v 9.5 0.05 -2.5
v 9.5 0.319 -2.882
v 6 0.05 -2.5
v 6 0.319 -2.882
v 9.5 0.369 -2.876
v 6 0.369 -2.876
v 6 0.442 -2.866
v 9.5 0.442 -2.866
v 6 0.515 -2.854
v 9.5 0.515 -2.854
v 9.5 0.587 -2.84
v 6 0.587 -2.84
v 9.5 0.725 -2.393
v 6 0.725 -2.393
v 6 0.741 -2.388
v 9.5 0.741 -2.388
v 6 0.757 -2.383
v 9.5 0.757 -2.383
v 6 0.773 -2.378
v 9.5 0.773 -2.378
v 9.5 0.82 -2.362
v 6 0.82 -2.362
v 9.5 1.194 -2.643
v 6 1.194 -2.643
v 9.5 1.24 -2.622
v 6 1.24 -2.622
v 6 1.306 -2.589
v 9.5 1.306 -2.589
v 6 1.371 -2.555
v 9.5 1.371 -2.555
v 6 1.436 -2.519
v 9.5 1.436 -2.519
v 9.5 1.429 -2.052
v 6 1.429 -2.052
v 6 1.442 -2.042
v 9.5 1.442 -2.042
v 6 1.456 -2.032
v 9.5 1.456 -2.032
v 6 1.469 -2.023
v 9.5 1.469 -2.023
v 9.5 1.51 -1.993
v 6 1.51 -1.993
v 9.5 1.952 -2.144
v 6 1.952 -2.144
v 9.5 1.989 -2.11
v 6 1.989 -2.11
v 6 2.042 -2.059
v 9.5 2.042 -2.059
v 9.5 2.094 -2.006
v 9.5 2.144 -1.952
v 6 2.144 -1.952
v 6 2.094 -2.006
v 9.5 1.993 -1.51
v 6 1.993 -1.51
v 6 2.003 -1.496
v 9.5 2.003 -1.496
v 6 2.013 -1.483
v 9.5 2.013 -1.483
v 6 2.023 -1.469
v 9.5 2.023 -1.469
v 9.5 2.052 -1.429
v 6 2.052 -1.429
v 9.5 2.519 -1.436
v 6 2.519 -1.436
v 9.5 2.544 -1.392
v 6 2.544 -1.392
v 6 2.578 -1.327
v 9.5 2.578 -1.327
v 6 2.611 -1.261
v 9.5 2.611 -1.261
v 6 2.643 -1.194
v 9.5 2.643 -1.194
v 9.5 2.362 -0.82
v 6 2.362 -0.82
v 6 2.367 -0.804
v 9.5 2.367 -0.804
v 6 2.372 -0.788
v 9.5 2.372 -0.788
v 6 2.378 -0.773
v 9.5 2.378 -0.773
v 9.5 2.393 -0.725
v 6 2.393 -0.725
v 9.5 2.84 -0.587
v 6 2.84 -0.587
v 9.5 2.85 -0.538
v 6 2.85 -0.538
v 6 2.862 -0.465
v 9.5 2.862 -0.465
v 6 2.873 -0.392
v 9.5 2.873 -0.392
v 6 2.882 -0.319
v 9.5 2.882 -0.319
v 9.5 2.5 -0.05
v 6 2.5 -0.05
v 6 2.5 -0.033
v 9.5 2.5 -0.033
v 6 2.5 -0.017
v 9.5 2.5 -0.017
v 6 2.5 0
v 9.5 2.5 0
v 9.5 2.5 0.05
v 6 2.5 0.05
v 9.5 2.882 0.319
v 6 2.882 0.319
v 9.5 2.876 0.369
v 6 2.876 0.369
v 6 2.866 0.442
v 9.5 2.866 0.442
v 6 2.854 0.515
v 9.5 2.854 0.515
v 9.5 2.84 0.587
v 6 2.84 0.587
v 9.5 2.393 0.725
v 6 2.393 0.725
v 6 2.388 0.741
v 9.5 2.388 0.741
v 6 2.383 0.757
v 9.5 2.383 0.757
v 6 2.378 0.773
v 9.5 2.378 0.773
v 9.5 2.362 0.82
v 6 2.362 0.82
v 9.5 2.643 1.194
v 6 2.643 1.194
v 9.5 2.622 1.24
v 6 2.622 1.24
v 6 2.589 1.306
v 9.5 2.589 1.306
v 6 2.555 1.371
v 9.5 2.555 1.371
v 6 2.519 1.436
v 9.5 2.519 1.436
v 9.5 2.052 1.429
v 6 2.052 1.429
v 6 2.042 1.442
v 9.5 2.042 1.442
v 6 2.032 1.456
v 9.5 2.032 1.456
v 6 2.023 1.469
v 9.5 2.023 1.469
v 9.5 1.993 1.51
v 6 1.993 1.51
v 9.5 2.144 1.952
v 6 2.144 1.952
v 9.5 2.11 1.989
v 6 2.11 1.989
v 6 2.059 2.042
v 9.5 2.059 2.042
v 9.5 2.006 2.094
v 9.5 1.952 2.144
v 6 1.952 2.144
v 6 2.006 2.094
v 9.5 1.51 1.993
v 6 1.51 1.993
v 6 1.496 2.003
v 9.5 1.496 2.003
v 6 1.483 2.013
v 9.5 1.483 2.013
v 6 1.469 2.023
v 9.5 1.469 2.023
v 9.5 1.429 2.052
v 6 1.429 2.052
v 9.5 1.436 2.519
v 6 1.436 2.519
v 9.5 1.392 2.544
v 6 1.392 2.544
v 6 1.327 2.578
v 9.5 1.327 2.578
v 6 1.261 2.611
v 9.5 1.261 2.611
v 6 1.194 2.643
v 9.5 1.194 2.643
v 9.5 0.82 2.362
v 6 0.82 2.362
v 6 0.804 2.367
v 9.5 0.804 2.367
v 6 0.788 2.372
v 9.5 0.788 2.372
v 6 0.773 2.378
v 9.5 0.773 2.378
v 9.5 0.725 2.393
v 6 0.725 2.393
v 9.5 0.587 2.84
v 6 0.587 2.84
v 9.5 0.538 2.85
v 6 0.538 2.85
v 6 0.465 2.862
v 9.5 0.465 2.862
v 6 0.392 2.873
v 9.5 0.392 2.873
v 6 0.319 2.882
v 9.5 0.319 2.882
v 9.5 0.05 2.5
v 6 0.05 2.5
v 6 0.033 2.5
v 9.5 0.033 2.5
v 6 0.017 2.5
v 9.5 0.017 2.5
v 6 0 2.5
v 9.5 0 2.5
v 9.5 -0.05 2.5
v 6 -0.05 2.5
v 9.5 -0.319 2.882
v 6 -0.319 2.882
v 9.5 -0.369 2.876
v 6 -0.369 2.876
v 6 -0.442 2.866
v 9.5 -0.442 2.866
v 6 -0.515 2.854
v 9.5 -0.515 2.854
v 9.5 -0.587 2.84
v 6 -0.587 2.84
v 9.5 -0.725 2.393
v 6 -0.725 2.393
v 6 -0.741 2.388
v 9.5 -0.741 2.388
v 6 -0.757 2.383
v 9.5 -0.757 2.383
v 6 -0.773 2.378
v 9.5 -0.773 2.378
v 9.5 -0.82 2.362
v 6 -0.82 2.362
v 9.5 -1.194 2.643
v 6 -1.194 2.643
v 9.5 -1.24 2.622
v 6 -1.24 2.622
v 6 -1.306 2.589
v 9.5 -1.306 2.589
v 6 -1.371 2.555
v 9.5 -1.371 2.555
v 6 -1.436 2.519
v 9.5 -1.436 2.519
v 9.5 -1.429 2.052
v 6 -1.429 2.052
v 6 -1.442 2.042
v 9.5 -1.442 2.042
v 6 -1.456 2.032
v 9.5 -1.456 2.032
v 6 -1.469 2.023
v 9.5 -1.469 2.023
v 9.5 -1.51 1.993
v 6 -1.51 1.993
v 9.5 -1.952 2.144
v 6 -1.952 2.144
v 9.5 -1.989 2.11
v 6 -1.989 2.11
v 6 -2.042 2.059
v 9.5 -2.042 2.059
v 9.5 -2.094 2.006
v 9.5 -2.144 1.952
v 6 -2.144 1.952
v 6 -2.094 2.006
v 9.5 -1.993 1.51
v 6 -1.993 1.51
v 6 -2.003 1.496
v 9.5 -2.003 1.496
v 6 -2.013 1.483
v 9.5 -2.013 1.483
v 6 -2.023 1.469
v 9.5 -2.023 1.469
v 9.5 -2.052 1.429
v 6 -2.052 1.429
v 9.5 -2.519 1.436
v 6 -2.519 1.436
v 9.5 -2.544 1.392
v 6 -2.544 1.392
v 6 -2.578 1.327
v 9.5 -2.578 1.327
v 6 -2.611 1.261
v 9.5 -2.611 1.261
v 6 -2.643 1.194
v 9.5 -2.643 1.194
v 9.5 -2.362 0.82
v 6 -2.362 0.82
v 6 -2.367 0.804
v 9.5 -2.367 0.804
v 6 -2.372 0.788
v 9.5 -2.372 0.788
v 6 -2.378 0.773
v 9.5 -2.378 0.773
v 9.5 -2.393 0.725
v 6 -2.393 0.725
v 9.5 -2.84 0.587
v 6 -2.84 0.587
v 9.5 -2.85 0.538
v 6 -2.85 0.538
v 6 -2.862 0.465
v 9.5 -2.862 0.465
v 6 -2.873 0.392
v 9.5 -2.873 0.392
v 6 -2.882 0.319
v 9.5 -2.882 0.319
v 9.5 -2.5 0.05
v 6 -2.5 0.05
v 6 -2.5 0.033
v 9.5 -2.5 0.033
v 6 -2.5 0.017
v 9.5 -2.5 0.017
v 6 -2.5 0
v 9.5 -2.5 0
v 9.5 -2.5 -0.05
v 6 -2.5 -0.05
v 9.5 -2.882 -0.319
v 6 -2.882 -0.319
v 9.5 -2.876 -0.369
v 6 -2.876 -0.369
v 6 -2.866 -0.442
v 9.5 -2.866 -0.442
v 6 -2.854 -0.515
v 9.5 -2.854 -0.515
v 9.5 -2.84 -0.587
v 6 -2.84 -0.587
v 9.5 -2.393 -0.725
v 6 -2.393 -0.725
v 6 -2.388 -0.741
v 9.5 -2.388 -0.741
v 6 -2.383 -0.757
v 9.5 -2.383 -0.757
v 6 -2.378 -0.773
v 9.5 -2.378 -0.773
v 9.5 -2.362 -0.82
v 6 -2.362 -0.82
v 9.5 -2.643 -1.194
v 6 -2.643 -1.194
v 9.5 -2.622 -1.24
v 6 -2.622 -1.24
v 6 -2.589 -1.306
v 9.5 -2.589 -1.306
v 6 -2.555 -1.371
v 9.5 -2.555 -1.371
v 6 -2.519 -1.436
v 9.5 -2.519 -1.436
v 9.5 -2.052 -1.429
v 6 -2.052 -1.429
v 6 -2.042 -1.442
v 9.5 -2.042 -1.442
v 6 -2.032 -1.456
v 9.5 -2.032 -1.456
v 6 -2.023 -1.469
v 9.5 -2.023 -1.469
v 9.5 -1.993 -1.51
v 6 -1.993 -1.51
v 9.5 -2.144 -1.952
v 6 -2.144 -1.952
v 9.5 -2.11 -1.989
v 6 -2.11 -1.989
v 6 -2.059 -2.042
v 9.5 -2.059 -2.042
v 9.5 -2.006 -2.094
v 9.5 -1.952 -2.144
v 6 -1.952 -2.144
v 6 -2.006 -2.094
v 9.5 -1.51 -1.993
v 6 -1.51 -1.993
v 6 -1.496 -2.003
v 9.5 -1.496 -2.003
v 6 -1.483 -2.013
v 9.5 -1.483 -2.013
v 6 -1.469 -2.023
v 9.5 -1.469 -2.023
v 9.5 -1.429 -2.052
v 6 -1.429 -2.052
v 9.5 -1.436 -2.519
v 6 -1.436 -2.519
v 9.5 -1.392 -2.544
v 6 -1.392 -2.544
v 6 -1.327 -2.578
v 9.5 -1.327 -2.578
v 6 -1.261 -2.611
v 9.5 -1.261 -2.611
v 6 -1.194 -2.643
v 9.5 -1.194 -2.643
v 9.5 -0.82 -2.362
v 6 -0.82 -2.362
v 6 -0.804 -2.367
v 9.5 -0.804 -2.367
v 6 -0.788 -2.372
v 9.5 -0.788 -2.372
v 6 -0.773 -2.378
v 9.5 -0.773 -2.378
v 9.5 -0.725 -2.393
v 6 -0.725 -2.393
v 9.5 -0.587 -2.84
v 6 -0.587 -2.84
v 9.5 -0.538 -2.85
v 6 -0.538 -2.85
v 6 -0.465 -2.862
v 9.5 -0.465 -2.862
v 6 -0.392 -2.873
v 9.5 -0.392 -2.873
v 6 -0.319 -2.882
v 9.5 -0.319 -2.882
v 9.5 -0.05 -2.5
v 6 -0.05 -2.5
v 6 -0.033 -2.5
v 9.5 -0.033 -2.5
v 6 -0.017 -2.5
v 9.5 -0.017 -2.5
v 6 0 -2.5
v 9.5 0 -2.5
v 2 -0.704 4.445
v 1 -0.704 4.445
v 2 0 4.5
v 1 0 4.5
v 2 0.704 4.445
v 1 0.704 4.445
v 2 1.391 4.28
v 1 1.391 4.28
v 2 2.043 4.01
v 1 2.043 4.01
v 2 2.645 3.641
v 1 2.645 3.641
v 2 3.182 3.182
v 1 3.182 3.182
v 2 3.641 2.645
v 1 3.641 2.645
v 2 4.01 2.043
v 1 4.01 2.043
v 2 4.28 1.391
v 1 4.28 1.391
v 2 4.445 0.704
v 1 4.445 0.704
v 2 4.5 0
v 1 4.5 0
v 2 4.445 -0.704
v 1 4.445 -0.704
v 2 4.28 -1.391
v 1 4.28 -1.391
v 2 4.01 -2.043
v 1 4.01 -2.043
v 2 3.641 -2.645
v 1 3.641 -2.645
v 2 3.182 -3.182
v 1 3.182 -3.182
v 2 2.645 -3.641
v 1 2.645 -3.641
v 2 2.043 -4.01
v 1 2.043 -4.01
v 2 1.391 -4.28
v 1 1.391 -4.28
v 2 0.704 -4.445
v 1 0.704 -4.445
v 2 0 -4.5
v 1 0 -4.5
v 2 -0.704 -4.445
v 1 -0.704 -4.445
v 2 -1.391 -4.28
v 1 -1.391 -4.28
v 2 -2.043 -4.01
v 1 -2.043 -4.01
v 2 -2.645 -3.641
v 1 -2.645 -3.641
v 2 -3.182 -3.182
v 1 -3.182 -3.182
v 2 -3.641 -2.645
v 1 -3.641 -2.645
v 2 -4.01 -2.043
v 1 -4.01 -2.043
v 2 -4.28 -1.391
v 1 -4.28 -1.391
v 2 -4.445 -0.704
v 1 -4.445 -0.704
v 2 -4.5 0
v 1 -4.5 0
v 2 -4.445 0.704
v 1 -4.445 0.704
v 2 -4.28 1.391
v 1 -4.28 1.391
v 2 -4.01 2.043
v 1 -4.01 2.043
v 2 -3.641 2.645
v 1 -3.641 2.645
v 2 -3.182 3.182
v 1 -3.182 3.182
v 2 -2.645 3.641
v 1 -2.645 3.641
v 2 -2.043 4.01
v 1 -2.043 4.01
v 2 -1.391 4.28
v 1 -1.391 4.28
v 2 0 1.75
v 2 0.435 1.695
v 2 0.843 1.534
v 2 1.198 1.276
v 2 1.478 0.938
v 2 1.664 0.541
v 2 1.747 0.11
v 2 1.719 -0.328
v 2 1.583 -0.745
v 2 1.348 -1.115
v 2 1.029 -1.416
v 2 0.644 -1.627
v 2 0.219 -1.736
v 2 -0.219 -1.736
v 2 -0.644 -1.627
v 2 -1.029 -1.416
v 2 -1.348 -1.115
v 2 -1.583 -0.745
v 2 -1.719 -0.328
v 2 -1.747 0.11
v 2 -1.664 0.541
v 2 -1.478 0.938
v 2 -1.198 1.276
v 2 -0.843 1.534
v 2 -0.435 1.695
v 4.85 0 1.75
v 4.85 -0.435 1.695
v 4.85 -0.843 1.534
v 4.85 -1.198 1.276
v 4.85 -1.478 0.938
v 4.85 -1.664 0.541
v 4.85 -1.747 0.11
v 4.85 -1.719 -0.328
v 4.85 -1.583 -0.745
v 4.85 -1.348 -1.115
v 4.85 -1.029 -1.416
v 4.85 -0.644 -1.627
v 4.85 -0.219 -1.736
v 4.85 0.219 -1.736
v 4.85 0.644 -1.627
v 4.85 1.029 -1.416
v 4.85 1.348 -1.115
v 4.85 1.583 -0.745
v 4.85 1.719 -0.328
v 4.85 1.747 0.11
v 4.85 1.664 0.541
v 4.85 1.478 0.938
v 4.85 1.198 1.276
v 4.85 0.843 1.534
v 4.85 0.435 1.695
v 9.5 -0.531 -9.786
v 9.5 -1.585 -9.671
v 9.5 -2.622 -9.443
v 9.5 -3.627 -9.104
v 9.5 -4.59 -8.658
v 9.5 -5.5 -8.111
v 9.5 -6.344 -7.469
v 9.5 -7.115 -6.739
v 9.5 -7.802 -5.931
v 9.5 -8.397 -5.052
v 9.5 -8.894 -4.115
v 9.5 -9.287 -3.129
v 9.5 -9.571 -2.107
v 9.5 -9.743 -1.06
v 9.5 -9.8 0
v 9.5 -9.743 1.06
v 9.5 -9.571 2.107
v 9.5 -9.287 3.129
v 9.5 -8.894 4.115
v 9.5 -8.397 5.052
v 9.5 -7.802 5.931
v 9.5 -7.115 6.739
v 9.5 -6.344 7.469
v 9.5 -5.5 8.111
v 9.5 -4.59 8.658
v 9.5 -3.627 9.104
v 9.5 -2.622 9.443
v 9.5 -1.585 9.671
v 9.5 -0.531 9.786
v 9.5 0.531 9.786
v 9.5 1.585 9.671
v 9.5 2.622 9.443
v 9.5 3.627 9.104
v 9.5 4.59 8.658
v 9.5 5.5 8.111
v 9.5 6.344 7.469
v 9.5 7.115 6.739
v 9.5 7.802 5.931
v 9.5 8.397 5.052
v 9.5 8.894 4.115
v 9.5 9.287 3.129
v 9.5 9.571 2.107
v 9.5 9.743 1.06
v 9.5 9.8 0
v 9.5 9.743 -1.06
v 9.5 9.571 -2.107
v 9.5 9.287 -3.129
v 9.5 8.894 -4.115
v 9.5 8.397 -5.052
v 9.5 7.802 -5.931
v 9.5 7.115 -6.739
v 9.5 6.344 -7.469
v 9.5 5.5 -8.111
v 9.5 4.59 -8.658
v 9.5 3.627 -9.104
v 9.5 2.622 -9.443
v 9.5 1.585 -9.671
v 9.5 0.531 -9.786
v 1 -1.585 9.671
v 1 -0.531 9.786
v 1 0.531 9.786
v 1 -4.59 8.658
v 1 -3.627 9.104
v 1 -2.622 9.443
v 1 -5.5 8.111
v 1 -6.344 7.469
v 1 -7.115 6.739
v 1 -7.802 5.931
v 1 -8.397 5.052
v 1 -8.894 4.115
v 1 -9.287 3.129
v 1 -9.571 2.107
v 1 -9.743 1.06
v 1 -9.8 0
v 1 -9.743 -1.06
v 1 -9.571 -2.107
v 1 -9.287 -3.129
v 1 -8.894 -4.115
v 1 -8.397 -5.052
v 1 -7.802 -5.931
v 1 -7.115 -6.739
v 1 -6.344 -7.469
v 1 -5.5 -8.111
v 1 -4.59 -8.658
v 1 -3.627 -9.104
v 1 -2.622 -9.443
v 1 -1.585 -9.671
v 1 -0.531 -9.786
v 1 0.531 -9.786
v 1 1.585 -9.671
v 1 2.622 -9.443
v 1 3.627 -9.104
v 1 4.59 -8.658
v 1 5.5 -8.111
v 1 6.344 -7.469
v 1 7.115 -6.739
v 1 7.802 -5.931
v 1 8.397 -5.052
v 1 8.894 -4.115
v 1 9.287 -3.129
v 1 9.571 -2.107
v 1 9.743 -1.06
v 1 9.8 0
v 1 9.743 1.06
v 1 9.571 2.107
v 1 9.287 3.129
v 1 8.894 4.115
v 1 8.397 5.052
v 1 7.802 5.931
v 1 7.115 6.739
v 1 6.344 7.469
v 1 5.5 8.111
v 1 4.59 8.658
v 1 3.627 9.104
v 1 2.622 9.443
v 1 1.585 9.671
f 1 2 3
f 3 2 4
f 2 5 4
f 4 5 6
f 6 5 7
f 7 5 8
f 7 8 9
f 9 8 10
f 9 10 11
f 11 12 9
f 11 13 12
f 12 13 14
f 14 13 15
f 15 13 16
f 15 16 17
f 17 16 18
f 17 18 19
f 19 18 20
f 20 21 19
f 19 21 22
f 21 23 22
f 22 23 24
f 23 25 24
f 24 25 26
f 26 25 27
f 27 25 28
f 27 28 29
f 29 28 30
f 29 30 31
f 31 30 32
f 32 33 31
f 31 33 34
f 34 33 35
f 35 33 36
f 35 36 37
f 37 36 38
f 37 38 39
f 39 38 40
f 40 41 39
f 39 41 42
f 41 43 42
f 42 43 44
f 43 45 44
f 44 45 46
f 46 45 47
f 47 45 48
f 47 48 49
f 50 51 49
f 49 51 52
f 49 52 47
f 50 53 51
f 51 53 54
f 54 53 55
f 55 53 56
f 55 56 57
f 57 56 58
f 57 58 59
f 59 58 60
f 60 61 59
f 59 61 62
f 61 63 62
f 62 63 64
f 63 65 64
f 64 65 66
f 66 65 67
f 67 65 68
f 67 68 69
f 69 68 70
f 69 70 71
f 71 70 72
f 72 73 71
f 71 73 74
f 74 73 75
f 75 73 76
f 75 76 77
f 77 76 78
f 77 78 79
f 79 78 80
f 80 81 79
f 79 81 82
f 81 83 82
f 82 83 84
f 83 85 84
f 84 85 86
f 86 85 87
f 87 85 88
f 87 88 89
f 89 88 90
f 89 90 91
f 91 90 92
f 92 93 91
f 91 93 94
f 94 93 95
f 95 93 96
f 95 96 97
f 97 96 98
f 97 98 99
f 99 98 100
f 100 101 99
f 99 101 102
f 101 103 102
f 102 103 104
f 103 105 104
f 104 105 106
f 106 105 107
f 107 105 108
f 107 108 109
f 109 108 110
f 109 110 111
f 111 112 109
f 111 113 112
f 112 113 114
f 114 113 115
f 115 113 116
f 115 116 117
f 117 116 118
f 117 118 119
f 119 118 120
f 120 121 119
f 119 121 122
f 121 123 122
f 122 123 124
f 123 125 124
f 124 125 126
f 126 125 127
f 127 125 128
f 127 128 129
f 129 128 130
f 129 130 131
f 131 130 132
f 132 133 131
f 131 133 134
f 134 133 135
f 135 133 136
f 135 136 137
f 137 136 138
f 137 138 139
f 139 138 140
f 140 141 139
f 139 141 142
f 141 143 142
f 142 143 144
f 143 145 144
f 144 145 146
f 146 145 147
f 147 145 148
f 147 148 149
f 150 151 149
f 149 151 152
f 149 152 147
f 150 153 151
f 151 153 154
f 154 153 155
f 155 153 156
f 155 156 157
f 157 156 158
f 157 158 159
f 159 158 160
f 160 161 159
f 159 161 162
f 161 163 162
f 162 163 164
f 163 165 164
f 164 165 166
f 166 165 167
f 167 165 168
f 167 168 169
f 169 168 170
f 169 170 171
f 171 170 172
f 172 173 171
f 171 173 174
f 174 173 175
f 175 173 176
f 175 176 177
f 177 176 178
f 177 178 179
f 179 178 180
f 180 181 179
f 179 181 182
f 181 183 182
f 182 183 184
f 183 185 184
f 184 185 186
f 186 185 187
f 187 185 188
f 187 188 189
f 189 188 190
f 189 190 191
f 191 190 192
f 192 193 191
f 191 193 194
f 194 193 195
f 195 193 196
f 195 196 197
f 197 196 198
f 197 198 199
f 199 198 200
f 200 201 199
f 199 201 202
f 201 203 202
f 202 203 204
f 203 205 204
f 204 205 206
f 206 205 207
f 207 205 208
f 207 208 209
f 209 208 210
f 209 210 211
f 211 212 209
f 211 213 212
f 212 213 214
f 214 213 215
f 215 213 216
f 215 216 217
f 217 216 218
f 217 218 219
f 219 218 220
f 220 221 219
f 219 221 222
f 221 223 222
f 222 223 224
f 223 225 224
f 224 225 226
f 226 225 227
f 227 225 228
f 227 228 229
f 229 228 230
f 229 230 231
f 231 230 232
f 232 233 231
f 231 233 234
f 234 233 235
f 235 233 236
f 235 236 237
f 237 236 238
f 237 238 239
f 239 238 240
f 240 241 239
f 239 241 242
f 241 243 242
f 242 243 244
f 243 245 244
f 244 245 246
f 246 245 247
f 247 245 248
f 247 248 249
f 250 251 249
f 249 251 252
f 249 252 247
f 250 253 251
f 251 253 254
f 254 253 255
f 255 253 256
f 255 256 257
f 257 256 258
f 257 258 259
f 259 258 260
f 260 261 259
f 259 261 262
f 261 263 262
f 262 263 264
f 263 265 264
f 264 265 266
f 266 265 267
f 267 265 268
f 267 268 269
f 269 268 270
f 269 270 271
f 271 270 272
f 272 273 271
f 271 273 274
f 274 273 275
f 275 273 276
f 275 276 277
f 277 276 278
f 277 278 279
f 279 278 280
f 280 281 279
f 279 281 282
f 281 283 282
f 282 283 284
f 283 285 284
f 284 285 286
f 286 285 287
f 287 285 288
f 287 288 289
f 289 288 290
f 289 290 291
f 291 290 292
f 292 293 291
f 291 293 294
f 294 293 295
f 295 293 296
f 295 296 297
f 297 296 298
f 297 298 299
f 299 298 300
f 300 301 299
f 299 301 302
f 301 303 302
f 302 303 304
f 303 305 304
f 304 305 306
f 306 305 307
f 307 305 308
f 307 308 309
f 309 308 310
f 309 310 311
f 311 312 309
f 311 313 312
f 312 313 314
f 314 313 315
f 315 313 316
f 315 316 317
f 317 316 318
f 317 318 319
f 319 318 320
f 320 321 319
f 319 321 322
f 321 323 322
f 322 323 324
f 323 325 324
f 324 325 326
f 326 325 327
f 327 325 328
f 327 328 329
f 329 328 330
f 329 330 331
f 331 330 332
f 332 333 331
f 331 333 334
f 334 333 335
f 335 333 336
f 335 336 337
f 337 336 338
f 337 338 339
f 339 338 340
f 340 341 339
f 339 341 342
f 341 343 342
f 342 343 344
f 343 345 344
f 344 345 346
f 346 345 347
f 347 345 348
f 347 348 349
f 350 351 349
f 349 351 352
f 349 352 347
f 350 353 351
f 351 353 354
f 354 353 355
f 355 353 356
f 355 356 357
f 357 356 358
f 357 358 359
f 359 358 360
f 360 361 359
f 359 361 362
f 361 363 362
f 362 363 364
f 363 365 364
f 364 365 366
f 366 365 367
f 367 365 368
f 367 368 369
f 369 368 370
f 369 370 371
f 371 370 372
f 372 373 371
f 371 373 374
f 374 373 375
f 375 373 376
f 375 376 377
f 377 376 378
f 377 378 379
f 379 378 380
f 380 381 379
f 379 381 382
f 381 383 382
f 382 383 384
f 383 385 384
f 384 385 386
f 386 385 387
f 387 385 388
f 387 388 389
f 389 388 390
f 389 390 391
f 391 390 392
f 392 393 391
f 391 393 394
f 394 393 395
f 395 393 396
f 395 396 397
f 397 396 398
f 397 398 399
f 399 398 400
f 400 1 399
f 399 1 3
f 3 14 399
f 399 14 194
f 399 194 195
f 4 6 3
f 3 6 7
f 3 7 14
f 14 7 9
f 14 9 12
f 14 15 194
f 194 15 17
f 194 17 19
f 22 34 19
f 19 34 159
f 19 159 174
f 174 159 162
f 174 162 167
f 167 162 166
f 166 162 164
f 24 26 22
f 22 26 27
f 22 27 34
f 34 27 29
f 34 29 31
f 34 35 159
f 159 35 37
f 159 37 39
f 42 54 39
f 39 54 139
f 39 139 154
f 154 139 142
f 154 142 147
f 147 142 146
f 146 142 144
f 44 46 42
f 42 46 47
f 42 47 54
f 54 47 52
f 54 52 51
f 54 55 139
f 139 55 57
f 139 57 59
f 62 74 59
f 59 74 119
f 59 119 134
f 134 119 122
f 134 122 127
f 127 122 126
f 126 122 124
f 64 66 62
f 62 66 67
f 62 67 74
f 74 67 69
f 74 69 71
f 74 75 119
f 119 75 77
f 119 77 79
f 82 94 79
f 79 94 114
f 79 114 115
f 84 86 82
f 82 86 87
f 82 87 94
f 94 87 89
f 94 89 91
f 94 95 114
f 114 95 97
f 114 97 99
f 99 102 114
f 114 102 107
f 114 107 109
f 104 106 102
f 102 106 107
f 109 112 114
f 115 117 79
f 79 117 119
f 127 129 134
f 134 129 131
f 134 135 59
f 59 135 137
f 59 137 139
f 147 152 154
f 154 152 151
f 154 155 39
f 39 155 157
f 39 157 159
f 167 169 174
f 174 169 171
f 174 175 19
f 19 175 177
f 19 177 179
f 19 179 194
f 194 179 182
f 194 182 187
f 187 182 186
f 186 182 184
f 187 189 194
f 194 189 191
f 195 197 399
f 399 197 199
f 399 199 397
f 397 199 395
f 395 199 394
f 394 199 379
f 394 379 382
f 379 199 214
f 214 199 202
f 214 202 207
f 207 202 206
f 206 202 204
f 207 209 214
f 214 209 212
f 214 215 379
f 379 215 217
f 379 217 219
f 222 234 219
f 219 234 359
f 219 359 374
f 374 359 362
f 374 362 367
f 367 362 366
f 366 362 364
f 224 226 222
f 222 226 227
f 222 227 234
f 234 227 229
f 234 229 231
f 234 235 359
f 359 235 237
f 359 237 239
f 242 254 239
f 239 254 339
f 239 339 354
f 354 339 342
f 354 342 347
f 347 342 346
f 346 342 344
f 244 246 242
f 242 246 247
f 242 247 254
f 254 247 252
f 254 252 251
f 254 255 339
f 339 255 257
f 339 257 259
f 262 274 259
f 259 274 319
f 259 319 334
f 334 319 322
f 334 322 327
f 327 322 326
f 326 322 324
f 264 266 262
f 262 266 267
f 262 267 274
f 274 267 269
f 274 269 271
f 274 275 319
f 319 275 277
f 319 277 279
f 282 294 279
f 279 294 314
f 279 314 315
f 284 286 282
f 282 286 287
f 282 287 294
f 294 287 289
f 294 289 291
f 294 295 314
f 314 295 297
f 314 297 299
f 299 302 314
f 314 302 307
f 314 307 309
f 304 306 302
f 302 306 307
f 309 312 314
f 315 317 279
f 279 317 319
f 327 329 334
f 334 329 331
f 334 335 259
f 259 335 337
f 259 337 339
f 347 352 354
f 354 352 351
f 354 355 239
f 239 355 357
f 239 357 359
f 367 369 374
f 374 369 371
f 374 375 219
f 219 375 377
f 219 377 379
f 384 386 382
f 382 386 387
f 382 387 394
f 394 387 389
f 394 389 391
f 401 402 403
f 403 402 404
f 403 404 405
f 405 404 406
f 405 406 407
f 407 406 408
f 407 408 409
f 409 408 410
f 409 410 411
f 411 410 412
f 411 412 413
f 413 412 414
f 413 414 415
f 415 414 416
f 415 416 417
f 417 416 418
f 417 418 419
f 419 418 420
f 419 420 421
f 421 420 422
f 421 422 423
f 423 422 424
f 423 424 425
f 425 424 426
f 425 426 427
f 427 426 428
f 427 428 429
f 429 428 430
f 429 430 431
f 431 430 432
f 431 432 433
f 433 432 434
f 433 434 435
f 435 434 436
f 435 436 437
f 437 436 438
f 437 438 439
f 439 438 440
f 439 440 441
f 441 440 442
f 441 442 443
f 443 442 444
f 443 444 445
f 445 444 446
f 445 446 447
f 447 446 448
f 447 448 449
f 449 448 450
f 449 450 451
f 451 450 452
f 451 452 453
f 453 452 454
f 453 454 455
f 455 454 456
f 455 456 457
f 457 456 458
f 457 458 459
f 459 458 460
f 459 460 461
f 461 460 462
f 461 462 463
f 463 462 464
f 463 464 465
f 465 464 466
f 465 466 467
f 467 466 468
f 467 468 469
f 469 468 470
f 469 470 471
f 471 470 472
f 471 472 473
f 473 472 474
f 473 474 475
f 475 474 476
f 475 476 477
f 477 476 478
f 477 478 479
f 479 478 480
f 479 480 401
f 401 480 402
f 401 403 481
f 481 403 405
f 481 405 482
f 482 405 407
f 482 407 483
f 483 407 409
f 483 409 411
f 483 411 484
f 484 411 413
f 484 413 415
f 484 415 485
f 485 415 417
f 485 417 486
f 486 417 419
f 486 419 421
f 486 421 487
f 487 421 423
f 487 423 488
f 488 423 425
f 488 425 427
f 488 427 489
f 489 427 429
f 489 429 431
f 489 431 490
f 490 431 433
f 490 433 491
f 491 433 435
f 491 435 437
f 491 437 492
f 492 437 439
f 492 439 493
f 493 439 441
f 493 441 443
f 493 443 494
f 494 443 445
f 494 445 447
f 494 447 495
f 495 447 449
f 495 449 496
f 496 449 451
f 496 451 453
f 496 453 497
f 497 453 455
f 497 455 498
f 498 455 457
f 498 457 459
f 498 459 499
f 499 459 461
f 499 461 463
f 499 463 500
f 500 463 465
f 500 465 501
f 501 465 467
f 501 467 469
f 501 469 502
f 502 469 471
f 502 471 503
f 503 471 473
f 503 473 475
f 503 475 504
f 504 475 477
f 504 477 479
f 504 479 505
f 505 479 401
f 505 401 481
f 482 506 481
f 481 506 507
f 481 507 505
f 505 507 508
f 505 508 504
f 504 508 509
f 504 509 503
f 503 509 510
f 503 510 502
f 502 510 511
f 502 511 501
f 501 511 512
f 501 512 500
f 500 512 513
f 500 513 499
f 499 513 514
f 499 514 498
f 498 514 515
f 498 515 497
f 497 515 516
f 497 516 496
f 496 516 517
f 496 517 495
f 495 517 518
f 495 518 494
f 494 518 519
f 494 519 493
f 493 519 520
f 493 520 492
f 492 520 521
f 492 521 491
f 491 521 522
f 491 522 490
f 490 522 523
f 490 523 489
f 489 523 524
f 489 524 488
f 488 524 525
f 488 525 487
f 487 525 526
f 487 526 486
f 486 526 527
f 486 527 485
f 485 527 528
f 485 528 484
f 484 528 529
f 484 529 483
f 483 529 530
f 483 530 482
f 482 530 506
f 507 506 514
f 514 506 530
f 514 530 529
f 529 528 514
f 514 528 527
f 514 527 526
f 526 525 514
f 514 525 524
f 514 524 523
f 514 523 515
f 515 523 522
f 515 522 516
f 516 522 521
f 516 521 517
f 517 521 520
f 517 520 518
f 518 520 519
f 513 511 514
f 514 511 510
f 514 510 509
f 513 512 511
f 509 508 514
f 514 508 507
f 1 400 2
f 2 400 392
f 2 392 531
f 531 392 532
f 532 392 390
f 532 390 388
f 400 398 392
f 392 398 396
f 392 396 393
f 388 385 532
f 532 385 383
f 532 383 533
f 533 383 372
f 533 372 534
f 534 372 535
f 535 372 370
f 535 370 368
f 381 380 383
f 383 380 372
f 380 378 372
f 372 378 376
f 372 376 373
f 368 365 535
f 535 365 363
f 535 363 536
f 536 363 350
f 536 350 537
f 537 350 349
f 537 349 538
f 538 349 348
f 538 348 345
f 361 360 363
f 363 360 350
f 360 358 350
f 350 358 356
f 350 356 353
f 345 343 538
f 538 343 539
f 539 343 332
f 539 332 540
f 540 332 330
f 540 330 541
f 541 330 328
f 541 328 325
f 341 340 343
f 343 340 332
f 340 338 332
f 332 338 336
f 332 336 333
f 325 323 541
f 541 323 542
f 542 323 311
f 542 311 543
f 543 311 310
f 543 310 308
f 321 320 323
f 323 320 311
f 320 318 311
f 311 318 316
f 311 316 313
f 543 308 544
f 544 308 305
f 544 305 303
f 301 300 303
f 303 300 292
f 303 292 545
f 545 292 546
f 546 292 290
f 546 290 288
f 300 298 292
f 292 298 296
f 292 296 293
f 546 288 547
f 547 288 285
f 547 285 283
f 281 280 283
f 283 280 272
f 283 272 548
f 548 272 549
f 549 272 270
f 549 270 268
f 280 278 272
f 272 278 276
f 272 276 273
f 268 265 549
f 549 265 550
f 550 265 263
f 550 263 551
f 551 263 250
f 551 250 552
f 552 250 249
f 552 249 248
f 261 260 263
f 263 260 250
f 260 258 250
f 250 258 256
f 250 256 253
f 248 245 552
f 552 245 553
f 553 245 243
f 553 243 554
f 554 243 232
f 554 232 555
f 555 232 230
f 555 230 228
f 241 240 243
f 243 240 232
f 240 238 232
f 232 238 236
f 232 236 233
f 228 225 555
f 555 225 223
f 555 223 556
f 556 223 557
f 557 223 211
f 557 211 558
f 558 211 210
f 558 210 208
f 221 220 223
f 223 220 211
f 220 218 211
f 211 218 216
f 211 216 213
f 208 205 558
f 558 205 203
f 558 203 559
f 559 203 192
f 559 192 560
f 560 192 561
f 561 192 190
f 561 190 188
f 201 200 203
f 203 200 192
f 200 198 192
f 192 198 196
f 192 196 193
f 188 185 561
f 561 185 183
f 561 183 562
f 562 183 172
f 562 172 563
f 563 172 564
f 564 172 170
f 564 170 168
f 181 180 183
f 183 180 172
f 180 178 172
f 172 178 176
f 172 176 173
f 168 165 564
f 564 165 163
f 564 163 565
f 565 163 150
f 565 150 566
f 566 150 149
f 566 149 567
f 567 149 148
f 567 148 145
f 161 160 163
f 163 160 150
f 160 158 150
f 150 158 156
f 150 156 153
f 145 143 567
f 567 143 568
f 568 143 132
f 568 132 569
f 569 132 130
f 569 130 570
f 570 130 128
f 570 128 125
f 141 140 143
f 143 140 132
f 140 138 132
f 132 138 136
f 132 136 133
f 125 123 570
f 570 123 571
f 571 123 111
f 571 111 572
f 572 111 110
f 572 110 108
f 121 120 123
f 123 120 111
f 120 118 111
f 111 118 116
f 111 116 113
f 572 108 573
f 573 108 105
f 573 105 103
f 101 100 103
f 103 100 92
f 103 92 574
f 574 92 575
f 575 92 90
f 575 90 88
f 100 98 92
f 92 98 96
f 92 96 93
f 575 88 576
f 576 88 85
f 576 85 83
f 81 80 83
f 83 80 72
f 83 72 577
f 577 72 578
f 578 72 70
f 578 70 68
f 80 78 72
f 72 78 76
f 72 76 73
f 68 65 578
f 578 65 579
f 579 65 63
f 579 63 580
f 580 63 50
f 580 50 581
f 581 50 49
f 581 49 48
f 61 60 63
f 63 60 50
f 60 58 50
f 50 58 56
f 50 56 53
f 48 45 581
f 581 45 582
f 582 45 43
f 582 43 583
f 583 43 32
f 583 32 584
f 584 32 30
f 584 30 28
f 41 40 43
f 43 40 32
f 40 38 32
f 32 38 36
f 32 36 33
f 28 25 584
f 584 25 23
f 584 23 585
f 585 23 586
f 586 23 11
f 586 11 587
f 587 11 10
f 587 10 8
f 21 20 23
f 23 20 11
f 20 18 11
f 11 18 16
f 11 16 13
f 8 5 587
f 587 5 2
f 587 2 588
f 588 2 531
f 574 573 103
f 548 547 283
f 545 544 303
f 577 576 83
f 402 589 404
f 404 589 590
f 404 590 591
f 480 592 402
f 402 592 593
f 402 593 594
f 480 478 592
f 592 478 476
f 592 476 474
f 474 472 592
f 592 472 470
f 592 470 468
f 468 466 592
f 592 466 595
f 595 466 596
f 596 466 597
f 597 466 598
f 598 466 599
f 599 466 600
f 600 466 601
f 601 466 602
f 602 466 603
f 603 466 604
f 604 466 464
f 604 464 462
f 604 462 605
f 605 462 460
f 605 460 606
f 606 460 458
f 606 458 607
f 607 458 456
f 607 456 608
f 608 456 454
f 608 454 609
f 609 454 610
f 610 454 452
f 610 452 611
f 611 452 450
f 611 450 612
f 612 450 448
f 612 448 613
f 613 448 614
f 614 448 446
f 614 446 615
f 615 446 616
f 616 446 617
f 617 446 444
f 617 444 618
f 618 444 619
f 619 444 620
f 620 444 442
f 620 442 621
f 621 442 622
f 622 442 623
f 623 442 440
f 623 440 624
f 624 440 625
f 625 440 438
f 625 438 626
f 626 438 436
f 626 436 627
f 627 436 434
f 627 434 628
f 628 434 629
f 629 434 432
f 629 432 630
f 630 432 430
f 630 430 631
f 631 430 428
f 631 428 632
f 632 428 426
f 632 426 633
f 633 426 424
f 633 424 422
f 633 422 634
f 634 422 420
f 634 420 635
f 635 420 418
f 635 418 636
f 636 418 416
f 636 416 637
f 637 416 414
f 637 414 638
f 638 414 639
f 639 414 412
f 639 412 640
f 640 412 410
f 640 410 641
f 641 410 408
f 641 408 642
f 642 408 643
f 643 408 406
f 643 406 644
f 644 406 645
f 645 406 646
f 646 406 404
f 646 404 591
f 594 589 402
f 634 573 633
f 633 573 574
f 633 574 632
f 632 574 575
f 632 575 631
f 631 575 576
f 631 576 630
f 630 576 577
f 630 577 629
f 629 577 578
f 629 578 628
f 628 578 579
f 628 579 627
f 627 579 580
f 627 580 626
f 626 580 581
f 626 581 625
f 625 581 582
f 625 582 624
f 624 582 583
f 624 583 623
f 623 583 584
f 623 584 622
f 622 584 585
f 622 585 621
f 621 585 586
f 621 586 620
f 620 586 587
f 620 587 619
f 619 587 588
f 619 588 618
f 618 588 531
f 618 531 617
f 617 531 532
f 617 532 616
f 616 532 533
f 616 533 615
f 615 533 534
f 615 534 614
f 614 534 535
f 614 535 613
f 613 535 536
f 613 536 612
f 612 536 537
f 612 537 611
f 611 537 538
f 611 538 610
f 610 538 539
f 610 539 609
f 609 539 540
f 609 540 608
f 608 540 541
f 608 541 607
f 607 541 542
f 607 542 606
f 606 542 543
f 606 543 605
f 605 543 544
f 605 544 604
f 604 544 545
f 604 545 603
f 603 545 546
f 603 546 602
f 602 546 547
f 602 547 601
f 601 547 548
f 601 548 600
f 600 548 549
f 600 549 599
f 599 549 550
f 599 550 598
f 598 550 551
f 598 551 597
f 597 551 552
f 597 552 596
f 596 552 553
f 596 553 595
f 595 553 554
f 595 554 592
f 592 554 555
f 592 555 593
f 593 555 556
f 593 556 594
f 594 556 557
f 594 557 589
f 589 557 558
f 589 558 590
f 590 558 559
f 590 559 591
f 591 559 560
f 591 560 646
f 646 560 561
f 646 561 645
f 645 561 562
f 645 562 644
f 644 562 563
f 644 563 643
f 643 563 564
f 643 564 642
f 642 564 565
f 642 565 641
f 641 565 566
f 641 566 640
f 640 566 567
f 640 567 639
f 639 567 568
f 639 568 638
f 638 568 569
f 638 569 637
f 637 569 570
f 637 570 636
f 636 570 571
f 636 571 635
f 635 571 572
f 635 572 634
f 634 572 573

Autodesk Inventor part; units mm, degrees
ref_plane "YZ Plane" through (0, 0, 0) normal (1, 0, 0) x (0, 1, 0)
ref_plane "XZ Plane" through (0, 0, 0) normal (0, 1, 0) x (-1, 0, 0)
ref_plane "XY Plane" through (0, 0, 0) normal (0, 0, 1) x (1, 0, 0)
sketch "Esboço2" plane through (0, 0, 0) normal (0, 0, 1) x (1, 0, 0)
  line L0 (0, 0) -> (9.5, 0)
  line L1 (9.5, 0) -> (9.5, 9.8)
  line L2 (9.5, 9.8) -> (0, 9.8)
  line L3 (0, 9.8) -> (0, 0)
  line L4 (9.5, 0) -> (1, 0)
  line L5 (9.5, 0) -> (0.5, 0)
  line L6 (0, 0) -> (1, 0)
  line L7 (1, 0) -> (1, 9.8)
  dimension "d0" = 9.5
  dimension "d1" = 9.8
  dimension "d71" = 8.5
  dimension "d72" = 9
revolve "Revolução1" add sketch "Esboço2" angle 360 about axis through (0, 0, 0) along (1, 0, 0) contours L7 L2 L1 L0
sketch "Esboço12" plane through (9.5, 0, 0) normal (1, 0, 0) x (0, 0, -1)
  point P0 (0, 0)
sketch "Esboço13" plane through (1, 0, 0) normal (-1, 0, 0) x (0, 0, 1)
  circle A0 centre (0, 0) radius 1.75
  dimension "d73" = 3.5
extrude "Extrusão6" cut sketch "Esboço13" against normal blind 3.85
sketch "Esboço14" plane through (1, 0, 0) normal (-1, 0, 0) x (0, 0, 1)
  circle A0 centre (0, 0) radius 1.75 projected
  circle A1 centre (0, 0) radius 4.5
  dimension "d76" = 9
extrude "Extrusão7" cut sketch "Esboço14" against normal blind 1
sketch "Esboço15" plane through (9.5, 0, 0) normal (1, 0, 0) x (0, 0, -1)
  circle A0 centre (0, 0) radius 2.5
  circle A1 centre (0, 0) radius 1.75 projected
  circle A2 centre (0, 0) radius 2.9
  line L0 (2.5, 0) -> (2.5, 0.05)
  line L1 (2.5, 0) -> (2.4995, -0.05)
  line L2 (2.4995, -0.05) -> (2.8824, -0.3191)
  line L3 (2.5, 0.05) -> (2.8824, 0.3191)
  line L4 (2.8824, 0.3191) -> (2.8765, 0.3688)
  line L5 (2.8824, -0.3191) -> (2.8824, -0.3191)
  line L6 (2.8824, -0.3191) -> (2.8824, -0.3191)
  line L7 (2.8824, -0.3191) -> (2.8824, -0.3191)
  line L8 (2.8824, -0.3191) -> (2.8824, -0.3191)
  line L9 (2.8824, -0.3191) -> (2.8824, -0.3191)
  line L10 (2.8795, -0.3439) -> (2.8795, -0.3439)
  line L11 (2.8824, -0.3191) -> (2.8824, -0.3191)
  line L12 (2.3622, 0.8201) -> (2.6427, 1.1942)
  line L13 (2.6427, 1.1942) -> (2.6217, 1.2396)
  line L14 (2.3776, 0.7725) -> (2.3622, 0.8201)
  line L15 (2.3776, 0.7725) -> (2.3926, 0.7248)
  line L16 (2.3926, 0.7248) -> (2.8399, 0.5872)
  circle A3 centre (0, 0) radius 2.9
  line L17 (1.9932, 1.5099) -> (2.1443, 1.9524)
  line L18 (2.1443, 1.9524) -> (2.1104, 1.9891)
  line L19 (2.0225, 1.4695) -> (1.9932, 1.5099)
  line L20 (2.0225, 1.4695) -> (2.0515, 1.4287)
  line L21 (2.0515, 1.4287) -> (2.5195, 1.4361)
  circle A4 centre (0, 0) radius 2.9
  line L22 (1.429, 2.0519) -> (1.4361, 2.5195)
  line L23 (1.4361, 2.5195) -> (1.3924, 2.5439)
  line L24 (1.4695, 2.0225) -> (1.429, 2.0519)
  line L25 (1.4695, 2.0225) -> (1.5096, 1.9928)
  line L26 (1.5096, 1.9928) -> (1.9524, 2.1443)
  circle A5 centre (0, 0) radius 2.9
  line L27 (0.725, 2.3931) -> (0.5872, 2.8399)
  line L28 (0.5872, 2.8399) -> (0.5382, 2.8496)
  line L29 (0.7725, 2.3776) -> (0.725, 2.3931)
  line L30 (0.7725, 2.3776) -> (0.8199, 2.3617)
  line L31 (0.8199, 2.3617) -> (1.1942, 2.6427)
  circle A6 centre (0, 0) radius 2.9
  line L32 (-0.05, 2.5) -> (-0.3191, 2.8824)
  line L33 (-0.3191, 2.8824) -> (-0.3688, 2.8765)
  line L34 (0, 2.5) -> (-0.05, 2.5)
  line L35 (0, 2.5) -> (0.05, 2.4995)
  line L36 (0.05, 2.4995) -> (0.3191, 2.8824)
  circle A7 centre (0, 0) radius 2.9
  line L37 (-0.8201, 2.3622) -> (-1.1942, 2.6427)
  line L38 (-1.1942, 2.6427) -> (-1.2396, 2.6217)
  line L39 (-0.7725, 2.3776) -> (-0.8201, 2.3622)
  line L40 (-0.7725, 2.3776) -> (-0.7248, 2.3926)
  line L41 (-0.7248, 2.3926) -> (-0.5872, 2.8399)
  circle A8 centre (0, 0) radius 2.9
  line L42 (-1.5099, 1.9932) -> (-1.9524, 2.1443)
  line L43 (-1.9524, 2.1443) -> (-1.9891, 2.1104)
  line L44 (-1.4695, 2.0225) -> (-1.5099, 1.9932)
  line L45 (-1.4695, 2.0225) -> (-1.4287, 2.0515)
  line L46 (-1.4287, 2.0515) -> (-1.4361, 2.5195)
  circle A9 centre (0, 0) radius 2.9
  line L47 (-2.0519, 1.429) -> (-2.5195, 1.4361)
  line L48 (-2.5195, 1.4361) -> (-2.5439, 1.3924)
  line L49 (-2.0225, 1.4695) -> (-2.0519, 1.429)
  line L50 (-2.0225, 1.4695) -> (-1.9928, 1.5096)
  line L51 (-1.9928, 1.5096) -> (-2.1443, 1.9524)
  circle A10 centre (0, 0) radius 2.9
  line L52 (-2.3931, 0.725) -> (-2.8399, 0.5872)
  line L53 (-2.8399, 0.5872) -> (-2.8496, 0.5382)
  line L54 (-2.3776, 0.7725) -> (-2.3931, 0.725)
  line L55 (-2.3776, 0.7725) -> (-2.3617, 0.8199)
  line L56 (-2.3617, 0.8199) -> (-2.6427, 1.1942)
  circle A11 centre (0, 0) radius 2.9
  line L57 (-2.5, -0.05) -> (-2.8824, -0.3191)
  line L58 (-2.8824, -0.3191) -> (-2.8765, -0.3688)
  line L59 (-2.5, 0) -> (-2.5, -0.05)
  line L60 (-2.5, 0) -> (-2.4995, 0.05)
  line L61 (-2.4995, 0.05) -> (-2.8824, 0.3191)
  circle A12 centre (0, 0) radius 2.9
  line L62 (-2.3622, -0.8201) -> (-2.6427, -1.1942)
  line L63 (-2.6427, -1.1942) -> (-2.6217, -1.2396)
  line L64 (-2.3776, -0.7725) -> (-2.3622, -0.8201)
  line L65 (-2.3776, -0.7725) -> (-2.3926, -0.7248)
  line L66 (-2.3926, -0.7248) -> (-2.8399, -0.5872)
  circle A13 centre (0, 0) radius 2.9
  line L67 (-1.9932, -1.5099) -> (-2.1443, -1.9524)
  line L68 (-2.1443, -1.9524) -> (-2.1104, -1.9891)
  line L69 (-2.0225, -1.4695) -> (-1.9932, -1.5099)
  line L70 (-2.0225, -1.4695) -> (-2.0515, -1.4287)
  line L71 (-2.0515, -1.4287) -> (-2.5195, -1.4361)
  circle A14 centre (0, 0) radius 2.9
  line L72 (-1.429, -2.0519) -> (-1.4361, -2.5195)
  line L73 (-1.4361, -2.5195) -> (-1.3924, -2.5439)
  line L74 (-1.4695, -2.0225) -> (-1.429, -2.0519)
  line L75 (-1.4695, -2.0225) -> (-1.5096, -1.9928)
  line L76 (-1.5096, -1.9928) -> (-1.9524, -2.1443)
  circle A15 centre (0, 0) radius 2.9
  line L77 (-0.725, -2.3931) -> (-0.5872, -2.8399)
  line L78 (-0.5872, -2.8399) -> (-0.5382, -2.8496)
  line L79 (-0.7725, -2.3776) -> (-0.725, -2.3931)
  line L80 (-0.7725, -2.3776) -> (-0.8199, -2.3617)
  line L81 (-0.8199, -2.3617) -> (-1.1942, -2.6427)
  circle A16 centre (0, 0) radius 2.9
  line L82 (0.05, -2.5) -> (0.3191, -2.8824)
  line L83 (0.3191, -2.8824) -> (0.3688, -2.8765)
  line L84 (0, -2.5) -> (0.05, -2.5)
  line L85 (0, -2.5) -> (-0.05, -2.4995)
  line L86 (-0.05, -2.4995) -> (-0.3191, -2.8824)
  circle A17 centre (0, 0) radius 2.9
  line L87 (0.8201, -2.3622) -> (1.1942, -2.6427)
  line L88 (1.1942, -2.6427) -> (1.2396, -2.6217)
  line L89 (0.7725, -2.3776) -> (0.8201, -2.3622)
  line L90 (0.7725, -2.3776) -> (0.7248, -2.3926)
  line L91 (0.7248, -2.3926) -> (0.5872, -2.8399)
  circle A18 centre (0, 0) radius 2.9
  line L92 (1.5099, -1.9932) -> (1.9524, -2.1443)
  line L93 (1.9524, -2.1443) -> (1.9891, -2.1104)
  line L94 (1.4695, -2.0225) -> (1.5099, -1.9932)
  line L95 (1.4695, -2.0225) -> (1.4287, -2.0515)
  line L96 (1.4287, -2.0515) -> (1.4361, -2.5195)
  circle A19 centre (0, 0) radius 2.9
  line L97 (2.0519, -1.429) -> (2.5195, -1.4361)
  line L98 (2.5195, -1.4361) -> (2.5439, -1.3924)
  line L99 (2.0225, -1.4695) -> (2.0519, -1.429)
  line L100 (2.0225, -1.4695) -> (1.9928, -1.5096)
  line L101 (1.9928, -1.5096) -> (2.1443, -1.9524)
  circle A20 centre (0, 0) radius 2.9
  line L102 (2.3931, -0.725) -> (2.8399, -0.5872)
  line L103 (2.8399, -0.5872) -> (2.8496, -0.5382)
  line L104 (2.3776, -0.7725) -> (2.3931, -0.725)
  line L105 (2.3776, -0.7725) -> (2.3617, -0.8199)
  line L106 (2.3617, -0.8199) -> (2.6427, -1.1942)
  circle A21 centre (0, 0) radius 2.9
  point P0 (2.8399, 0.5872)
  point P1 (2.8399, 0.5872)
  point P2 (2.8399, 0.5872)
  point P3 (2.8399, 0.5872)
  point P4 (2.8399, 0.5872)
  point P5 (2.8449, 0.5627)
  point P6 (2.8449, 0.5627)
  point P7 (2.8399, 0.5872)
  point P8 (2.5195, 1.4361)
  point P9 (2.5195, 1.4361)
  point P10 (2.5195, 1.4361)
  point P11 (2.5195, 1.4361)
  point P12 (2.5195, 1.4361)
  point P13 (2.5318, 1.4143)
  point P14 (2.5318, 1.4143)
  point P15 (2.5195, 1.4361)
  point P16 (1.9524, 2.1443)
  point P17 (1.9524, 2.1443)
  point P18 (1.9524, 2.1443)
  point P19 (1.9524, 2.1443)
  point P20 (1.9524, 2.1443)
  point P21 (1.9708, 2.1274)
  point P22 (1.9708, 2.1274)
  point P23 (1.9524, 2.1443)
  point P24 (1.1942, 2.6427)
  point P25 (1.1942, 2.6427)
  point P26 (1.1942, 2.6427)
  point P27 (1.1942, 2.6427)
  point P28 (1.1942, 2.6427)
  point P29 (1.2169, 2.6323)
  point P30 (1.2169, 2.6323)
  point P31 (1.1942, 2.6427)
  point P32 (0.3191, 2.8824)
  point P33 (0.3191, 2.8824)
  point P34 (0.3191, 2.8824)
  point P35 (0.3191, 2.8824)
  point P36 (0.3191, 2.8824)
  point P37 (0.3439, 2.8795)
  point P38 (0.3439, 2.8795)
  point P39 (0.3191, 2.8824)
  point P40 (-0.5872, 2.8399)
  point P41 (-0.5872, 2.8399)
  point P42 (-0.5872, 2.8399)
  point P43 (-0.5872, 2.8399)
  point P44 (-0.5872, 2.8399)
  point P45 (-0.5627, 2.8449)
  point P46 (-0.5627, 2.8449)
  point P47 (-0.5872, 2.8399)
  point P48 (-1.4361, 2.5195)
  point P49 (-1.4361, 2.5195)
  point P50 (-1.4361, 2.5195)
  point P51 (-1.4361, 2.5195)
  point P52 (-1.4361, 2.5195)
  point P53 (-1.4143, 2.5318)
  point P54 (-1.4143, 2.5318)
  point P55 (-1.4361, 2.5195)
  point P56 (-2.1443, 1.9524)
  point P57 (-2.1443, 1.9524)
  point P58 (-2.1443, 1.9524)
  point P59 (-2.1443, 1.9524)
  point P60 (-2.1443, 1.9524)
  point P61 (-2.1274, 1.9708)
  point P62 (-2.1274, 1.9708)
  point P63 (-2.1443, 1.9524)
  point P64 (-2.6427, 1.1942)
  point P65 (-2.6427, 1.1942)
  point P66 (-2.6427, 1.1942)
  point P67 (-2.6427, 1.1942)
  point P68 (-2.6427, 1.1942)
  point P69 (-2.6323, 1.2169)
  point P70 (-2.6323, 1.2169)
  point P71 (-2.6427, 1.1942)
  point P72 (-2.8824, 0.3191)
  point P73 (-2.8824, 0.3191)
  point P74 (-2.8824, 0.3191)
  point P75 (-2.8824, 0.3191)
  point P76 (-2.8824, 0.3191)
  point P77 (-2.8795, 0.3439)
  point P78 (-2.8795, 0.3439)
  point P79 (-2.8824, 0.3191)
  point P80 (-2.8399, -0.5872)
  point P81 (-2.8399, -0.5872)
  point P82 (-2.8399, -0.5872)
  point P83 (-2.8399, -0.5872)
  point P84 (-2.8399, -0.5872)
  point P85 (-2.8449, -0.5627)
  point P86 (-2.8449, -0.5627)
  point P87 (-2.8399, -0.5872)
  point P88 (-2.5195, -1.4361)
  point P89 (-2.5195, -1.4361)
  point P90 (-2.5195, -1.4361)
  point P91 (-2.5195, -1.4361)
  point P92 (-2.5195, -1.4361)
  point P93 (-2.5318, -1.4143)
  point P94 (-2.5318, -1.4143)
  point P95 (-2.5195, -1.4361)
  point P96 (-1.9524, -2.1443)
  point P97 (-1.9524, -2.1443)
  point P98 (-1.9524, -2.1443)
  point P99 (-1.9524, -2.1443)
  point P100 (-1.9524, -2.1443)
  point P101 (-1.9708, -2.1274)
  point P102 (-1.9708, -2.1274)
  point P103 (-1.9524, -2.1443)
  point P104 (-1.1942, -2.6427)
  point P105 (-1.1942, -2.6427)
  point P106 (-1.1942, -2.6427)
  point P107 (-1.1942, -2.6427)
  point P108 (-1.1942, -2.6427)
  point P109 (-1.2169, -2.6323)
  point P110 (-1.2169, -2.6323)
  point P111 (-1.1942, -2.6427)
  point P112 (-0.3191, -2.8824)
  point P113 (-0.3191, -2.8824)
  point P114 (-0.3191, -2.8824)
  point P115 (-0.3191, -2.8824)
  point P116 (-0.3191, -2.8824)
  point P117 (-0.3439, -2.8795)
  point P118 (-0.3439, -2.8795)
  point P119 (-0.3191, -2.8824)
  point P120 (0.5872, -2.8399)
  point P121 (0.5872, -2.8399)
  point P122 (0.5872, -2.8399)
  point P123 (0.5872, -2.8399)
  point P124 (0.5872, -2.8399)
  point P125 (0.5627, -2.8449)
  point P126 (0.5627, -2.8449)
  point P127 (0.5872, -2.8399)
  point P128 (1.4361, -2.5195)
  point P129 (1.4361, -2.5195)
  point P130 (1.4361, -2.5195)
  point P131 (1.4361, -2.5195)
  point P132 (1.4361, -2.5195)
  point P133 (1.4143, -2.5318)
  point P134 (1.4143, -2.5318)
  point P135 (1.4361, -2.5195)
  point P136 (2.1443, -1.9524)
  point P137 (2.1443, -1.9524)
  point P138 (2.1443, -1.9524)
  point P139 (2.1443, -1.9524)
  point P140 (2.1443, -1.9524)
  point P141 (2.1274, -1.9708)
  point P142 (2.1274, -1.9708)
  point P143 (2.1443, -1.9524)
  point P144 (2.6427, -1.1942)
  point P145 (2.6427, -1.1942)
  point P146 (2.6427, -1.1942)
  point P147 (2.6427, -1.1942)
  point P148 (2.6427, -1.1942)
  point P149 (2.6323, -1.2169)
  point P150 (2.6323, -1.2169)
  point P151 (2.6427, -1.1942)
  dimension "d79" = 5
  dimension "d80" = 5.8
  dimension "d81" = 0.05
  dimension "d82" = 0.05
  dimension "d83" = 0.468
  dimension "d85" = 0.05
  dimension "d88" = 360
extrude "Extrusão8" cut sketch "Esboço15" against normal blind 3.5 contours A0 | A0 L16 A2 L3 | L2 A2 L102 A0 | A0 L21 A2 L12 | L106 A2 L97 A0 | A0 L26 A2 L17 | L101 A2 L92 A0 | A0 L31 A2 L22 | L96 A2 L87 A0 | A0 L36 A2 L27 | L91 A2 L82 A0 | A0 L41 A2 L32 | L86 A2 L77 A0 | A0 L46 A2 L37 | L81 A2 L72 A0 | A0 L51 A2 L42 | L76 A2 L67 A0 | A0 L56 A2 L47 | L71 A2 L62 A0 | A0 L61 A2 L52 | L66 A2 L57 A0 | A1
properties part number "roda certa 3.0"
